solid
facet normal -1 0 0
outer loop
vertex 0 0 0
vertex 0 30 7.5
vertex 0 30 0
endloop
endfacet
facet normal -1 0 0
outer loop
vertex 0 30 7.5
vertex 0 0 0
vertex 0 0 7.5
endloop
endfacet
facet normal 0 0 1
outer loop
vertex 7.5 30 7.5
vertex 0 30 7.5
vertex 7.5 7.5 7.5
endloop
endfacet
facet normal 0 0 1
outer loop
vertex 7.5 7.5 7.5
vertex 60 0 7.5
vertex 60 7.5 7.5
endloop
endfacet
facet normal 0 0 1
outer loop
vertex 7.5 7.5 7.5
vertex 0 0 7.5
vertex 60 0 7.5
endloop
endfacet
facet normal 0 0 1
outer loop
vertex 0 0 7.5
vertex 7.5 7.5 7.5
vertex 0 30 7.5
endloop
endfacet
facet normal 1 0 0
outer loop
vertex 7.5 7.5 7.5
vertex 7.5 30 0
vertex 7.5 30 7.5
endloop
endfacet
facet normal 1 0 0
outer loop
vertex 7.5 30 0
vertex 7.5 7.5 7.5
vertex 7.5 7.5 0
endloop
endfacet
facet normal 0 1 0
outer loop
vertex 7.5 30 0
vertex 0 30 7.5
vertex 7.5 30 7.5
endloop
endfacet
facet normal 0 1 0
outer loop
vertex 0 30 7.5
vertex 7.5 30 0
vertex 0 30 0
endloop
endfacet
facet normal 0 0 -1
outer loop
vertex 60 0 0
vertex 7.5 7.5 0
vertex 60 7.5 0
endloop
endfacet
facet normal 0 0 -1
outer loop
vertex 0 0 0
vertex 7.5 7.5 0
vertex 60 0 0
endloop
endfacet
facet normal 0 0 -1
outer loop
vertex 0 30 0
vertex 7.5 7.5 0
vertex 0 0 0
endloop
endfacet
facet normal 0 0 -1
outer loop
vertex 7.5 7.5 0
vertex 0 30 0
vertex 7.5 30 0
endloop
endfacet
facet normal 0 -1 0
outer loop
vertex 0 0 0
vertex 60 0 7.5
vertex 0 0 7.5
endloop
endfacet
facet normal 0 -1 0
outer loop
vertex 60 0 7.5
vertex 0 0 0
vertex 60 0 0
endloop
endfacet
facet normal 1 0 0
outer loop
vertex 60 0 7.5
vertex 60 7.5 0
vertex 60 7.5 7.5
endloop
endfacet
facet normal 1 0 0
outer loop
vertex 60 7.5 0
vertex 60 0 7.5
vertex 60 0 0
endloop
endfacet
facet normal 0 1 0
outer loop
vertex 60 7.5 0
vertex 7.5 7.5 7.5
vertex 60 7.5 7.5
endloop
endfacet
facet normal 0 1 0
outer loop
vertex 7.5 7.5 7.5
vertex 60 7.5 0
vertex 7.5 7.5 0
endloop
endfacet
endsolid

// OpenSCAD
t = 7.5;
y = 30;
x = 60;

cube([t, y, t]);
cube([x, t, t]);
